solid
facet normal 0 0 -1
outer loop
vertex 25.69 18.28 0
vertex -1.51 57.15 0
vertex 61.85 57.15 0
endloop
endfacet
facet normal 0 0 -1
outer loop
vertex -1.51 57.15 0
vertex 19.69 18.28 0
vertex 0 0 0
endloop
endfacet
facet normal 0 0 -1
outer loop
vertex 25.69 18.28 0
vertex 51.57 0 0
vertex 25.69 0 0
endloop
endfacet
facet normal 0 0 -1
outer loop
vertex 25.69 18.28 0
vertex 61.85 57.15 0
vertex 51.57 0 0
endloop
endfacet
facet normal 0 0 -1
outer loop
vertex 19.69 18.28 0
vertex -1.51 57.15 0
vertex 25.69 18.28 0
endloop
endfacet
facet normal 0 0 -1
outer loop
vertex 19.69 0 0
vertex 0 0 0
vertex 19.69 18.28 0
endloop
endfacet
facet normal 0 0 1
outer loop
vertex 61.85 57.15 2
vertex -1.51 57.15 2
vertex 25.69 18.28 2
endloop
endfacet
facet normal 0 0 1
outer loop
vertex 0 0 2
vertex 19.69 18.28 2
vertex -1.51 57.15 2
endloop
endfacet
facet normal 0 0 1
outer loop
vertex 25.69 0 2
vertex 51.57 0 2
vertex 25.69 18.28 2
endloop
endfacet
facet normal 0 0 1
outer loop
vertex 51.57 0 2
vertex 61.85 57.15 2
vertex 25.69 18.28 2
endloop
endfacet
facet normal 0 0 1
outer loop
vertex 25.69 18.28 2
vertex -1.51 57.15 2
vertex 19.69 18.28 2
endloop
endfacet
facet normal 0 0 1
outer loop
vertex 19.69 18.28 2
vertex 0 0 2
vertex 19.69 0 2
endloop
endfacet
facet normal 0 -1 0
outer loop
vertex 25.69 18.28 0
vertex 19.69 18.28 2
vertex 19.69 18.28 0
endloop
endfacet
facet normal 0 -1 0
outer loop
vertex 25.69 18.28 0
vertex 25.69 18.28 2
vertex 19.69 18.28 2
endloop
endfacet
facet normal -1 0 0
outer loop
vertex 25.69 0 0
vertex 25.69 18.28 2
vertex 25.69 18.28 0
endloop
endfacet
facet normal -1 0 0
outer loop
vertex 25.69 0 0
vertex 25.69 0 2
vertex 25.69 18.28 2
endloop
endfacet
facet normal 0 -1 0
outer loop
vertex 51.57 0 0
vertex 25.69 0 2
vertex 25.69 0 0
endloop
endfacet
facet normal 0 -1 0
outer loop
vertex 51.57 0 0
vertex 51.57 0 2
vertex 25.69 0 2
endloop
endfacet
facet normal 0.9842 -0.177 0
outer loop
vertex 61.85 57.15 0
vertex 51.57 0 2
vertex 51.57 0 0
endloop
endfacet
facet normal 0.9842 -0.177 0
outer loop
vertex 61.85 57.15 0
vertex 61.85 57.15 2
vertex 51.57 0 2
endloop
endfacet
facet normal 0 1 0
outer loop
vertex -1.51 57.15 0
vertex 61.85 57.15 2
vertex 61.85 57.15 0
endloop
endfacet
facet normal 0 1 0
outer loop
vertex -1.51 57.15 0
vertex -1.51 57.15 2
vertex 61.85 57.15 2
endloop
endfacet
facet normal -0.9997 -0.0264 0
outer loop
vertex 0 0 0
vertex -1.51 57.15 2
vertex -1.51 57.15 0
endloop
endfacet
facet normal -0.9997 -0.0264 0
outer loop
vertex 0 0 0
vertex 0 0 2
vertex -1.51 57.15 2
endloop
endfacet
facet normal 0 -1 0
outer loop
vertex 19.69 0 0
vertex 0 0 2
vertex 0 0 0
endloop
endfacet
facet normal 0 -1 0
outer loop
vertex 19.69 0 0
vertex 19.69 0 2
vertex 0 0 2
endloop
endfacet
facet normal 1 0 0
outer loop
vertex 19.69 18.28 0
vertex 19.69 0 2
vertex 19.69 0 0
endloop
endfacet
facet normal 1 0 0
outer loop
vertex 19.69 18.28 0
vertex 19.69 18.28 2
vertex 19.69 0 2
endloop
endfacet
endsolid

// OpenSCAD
height = 2;

linear_extrude(height=height)
polygon([
    [0.00, 0.00]
    ,[0.00+19.69, 0.00+0.00]
    ,[0.00+19.69+0.00, 0.00+0.00+18.28]
    ,[0.00+19.69+0.00+6.00, 0.00+0.00+18.28+0.00]
    ,[0.00+19.69+0.00+6.00+0.00, 0.00+0.00+18.28+0.00-18.28]
    ,[0.00+19.69+0.00+6.00+0.00+25.88, 0.00+0.00+18.28+0.00-18.28+0.00]
    ,[0.00+19.69+0.00+6.00+0.00+25.88+10.28, 0.00+0.00+18.28+0.00-18.28+0.00+57.15]
    ,[0.00+19.69+0.00+6.00+0.00+25.88+10.28-63.36, 0.00+0.00+18.28+0.00-18.28+0.00+57.15+0.00]
]);
